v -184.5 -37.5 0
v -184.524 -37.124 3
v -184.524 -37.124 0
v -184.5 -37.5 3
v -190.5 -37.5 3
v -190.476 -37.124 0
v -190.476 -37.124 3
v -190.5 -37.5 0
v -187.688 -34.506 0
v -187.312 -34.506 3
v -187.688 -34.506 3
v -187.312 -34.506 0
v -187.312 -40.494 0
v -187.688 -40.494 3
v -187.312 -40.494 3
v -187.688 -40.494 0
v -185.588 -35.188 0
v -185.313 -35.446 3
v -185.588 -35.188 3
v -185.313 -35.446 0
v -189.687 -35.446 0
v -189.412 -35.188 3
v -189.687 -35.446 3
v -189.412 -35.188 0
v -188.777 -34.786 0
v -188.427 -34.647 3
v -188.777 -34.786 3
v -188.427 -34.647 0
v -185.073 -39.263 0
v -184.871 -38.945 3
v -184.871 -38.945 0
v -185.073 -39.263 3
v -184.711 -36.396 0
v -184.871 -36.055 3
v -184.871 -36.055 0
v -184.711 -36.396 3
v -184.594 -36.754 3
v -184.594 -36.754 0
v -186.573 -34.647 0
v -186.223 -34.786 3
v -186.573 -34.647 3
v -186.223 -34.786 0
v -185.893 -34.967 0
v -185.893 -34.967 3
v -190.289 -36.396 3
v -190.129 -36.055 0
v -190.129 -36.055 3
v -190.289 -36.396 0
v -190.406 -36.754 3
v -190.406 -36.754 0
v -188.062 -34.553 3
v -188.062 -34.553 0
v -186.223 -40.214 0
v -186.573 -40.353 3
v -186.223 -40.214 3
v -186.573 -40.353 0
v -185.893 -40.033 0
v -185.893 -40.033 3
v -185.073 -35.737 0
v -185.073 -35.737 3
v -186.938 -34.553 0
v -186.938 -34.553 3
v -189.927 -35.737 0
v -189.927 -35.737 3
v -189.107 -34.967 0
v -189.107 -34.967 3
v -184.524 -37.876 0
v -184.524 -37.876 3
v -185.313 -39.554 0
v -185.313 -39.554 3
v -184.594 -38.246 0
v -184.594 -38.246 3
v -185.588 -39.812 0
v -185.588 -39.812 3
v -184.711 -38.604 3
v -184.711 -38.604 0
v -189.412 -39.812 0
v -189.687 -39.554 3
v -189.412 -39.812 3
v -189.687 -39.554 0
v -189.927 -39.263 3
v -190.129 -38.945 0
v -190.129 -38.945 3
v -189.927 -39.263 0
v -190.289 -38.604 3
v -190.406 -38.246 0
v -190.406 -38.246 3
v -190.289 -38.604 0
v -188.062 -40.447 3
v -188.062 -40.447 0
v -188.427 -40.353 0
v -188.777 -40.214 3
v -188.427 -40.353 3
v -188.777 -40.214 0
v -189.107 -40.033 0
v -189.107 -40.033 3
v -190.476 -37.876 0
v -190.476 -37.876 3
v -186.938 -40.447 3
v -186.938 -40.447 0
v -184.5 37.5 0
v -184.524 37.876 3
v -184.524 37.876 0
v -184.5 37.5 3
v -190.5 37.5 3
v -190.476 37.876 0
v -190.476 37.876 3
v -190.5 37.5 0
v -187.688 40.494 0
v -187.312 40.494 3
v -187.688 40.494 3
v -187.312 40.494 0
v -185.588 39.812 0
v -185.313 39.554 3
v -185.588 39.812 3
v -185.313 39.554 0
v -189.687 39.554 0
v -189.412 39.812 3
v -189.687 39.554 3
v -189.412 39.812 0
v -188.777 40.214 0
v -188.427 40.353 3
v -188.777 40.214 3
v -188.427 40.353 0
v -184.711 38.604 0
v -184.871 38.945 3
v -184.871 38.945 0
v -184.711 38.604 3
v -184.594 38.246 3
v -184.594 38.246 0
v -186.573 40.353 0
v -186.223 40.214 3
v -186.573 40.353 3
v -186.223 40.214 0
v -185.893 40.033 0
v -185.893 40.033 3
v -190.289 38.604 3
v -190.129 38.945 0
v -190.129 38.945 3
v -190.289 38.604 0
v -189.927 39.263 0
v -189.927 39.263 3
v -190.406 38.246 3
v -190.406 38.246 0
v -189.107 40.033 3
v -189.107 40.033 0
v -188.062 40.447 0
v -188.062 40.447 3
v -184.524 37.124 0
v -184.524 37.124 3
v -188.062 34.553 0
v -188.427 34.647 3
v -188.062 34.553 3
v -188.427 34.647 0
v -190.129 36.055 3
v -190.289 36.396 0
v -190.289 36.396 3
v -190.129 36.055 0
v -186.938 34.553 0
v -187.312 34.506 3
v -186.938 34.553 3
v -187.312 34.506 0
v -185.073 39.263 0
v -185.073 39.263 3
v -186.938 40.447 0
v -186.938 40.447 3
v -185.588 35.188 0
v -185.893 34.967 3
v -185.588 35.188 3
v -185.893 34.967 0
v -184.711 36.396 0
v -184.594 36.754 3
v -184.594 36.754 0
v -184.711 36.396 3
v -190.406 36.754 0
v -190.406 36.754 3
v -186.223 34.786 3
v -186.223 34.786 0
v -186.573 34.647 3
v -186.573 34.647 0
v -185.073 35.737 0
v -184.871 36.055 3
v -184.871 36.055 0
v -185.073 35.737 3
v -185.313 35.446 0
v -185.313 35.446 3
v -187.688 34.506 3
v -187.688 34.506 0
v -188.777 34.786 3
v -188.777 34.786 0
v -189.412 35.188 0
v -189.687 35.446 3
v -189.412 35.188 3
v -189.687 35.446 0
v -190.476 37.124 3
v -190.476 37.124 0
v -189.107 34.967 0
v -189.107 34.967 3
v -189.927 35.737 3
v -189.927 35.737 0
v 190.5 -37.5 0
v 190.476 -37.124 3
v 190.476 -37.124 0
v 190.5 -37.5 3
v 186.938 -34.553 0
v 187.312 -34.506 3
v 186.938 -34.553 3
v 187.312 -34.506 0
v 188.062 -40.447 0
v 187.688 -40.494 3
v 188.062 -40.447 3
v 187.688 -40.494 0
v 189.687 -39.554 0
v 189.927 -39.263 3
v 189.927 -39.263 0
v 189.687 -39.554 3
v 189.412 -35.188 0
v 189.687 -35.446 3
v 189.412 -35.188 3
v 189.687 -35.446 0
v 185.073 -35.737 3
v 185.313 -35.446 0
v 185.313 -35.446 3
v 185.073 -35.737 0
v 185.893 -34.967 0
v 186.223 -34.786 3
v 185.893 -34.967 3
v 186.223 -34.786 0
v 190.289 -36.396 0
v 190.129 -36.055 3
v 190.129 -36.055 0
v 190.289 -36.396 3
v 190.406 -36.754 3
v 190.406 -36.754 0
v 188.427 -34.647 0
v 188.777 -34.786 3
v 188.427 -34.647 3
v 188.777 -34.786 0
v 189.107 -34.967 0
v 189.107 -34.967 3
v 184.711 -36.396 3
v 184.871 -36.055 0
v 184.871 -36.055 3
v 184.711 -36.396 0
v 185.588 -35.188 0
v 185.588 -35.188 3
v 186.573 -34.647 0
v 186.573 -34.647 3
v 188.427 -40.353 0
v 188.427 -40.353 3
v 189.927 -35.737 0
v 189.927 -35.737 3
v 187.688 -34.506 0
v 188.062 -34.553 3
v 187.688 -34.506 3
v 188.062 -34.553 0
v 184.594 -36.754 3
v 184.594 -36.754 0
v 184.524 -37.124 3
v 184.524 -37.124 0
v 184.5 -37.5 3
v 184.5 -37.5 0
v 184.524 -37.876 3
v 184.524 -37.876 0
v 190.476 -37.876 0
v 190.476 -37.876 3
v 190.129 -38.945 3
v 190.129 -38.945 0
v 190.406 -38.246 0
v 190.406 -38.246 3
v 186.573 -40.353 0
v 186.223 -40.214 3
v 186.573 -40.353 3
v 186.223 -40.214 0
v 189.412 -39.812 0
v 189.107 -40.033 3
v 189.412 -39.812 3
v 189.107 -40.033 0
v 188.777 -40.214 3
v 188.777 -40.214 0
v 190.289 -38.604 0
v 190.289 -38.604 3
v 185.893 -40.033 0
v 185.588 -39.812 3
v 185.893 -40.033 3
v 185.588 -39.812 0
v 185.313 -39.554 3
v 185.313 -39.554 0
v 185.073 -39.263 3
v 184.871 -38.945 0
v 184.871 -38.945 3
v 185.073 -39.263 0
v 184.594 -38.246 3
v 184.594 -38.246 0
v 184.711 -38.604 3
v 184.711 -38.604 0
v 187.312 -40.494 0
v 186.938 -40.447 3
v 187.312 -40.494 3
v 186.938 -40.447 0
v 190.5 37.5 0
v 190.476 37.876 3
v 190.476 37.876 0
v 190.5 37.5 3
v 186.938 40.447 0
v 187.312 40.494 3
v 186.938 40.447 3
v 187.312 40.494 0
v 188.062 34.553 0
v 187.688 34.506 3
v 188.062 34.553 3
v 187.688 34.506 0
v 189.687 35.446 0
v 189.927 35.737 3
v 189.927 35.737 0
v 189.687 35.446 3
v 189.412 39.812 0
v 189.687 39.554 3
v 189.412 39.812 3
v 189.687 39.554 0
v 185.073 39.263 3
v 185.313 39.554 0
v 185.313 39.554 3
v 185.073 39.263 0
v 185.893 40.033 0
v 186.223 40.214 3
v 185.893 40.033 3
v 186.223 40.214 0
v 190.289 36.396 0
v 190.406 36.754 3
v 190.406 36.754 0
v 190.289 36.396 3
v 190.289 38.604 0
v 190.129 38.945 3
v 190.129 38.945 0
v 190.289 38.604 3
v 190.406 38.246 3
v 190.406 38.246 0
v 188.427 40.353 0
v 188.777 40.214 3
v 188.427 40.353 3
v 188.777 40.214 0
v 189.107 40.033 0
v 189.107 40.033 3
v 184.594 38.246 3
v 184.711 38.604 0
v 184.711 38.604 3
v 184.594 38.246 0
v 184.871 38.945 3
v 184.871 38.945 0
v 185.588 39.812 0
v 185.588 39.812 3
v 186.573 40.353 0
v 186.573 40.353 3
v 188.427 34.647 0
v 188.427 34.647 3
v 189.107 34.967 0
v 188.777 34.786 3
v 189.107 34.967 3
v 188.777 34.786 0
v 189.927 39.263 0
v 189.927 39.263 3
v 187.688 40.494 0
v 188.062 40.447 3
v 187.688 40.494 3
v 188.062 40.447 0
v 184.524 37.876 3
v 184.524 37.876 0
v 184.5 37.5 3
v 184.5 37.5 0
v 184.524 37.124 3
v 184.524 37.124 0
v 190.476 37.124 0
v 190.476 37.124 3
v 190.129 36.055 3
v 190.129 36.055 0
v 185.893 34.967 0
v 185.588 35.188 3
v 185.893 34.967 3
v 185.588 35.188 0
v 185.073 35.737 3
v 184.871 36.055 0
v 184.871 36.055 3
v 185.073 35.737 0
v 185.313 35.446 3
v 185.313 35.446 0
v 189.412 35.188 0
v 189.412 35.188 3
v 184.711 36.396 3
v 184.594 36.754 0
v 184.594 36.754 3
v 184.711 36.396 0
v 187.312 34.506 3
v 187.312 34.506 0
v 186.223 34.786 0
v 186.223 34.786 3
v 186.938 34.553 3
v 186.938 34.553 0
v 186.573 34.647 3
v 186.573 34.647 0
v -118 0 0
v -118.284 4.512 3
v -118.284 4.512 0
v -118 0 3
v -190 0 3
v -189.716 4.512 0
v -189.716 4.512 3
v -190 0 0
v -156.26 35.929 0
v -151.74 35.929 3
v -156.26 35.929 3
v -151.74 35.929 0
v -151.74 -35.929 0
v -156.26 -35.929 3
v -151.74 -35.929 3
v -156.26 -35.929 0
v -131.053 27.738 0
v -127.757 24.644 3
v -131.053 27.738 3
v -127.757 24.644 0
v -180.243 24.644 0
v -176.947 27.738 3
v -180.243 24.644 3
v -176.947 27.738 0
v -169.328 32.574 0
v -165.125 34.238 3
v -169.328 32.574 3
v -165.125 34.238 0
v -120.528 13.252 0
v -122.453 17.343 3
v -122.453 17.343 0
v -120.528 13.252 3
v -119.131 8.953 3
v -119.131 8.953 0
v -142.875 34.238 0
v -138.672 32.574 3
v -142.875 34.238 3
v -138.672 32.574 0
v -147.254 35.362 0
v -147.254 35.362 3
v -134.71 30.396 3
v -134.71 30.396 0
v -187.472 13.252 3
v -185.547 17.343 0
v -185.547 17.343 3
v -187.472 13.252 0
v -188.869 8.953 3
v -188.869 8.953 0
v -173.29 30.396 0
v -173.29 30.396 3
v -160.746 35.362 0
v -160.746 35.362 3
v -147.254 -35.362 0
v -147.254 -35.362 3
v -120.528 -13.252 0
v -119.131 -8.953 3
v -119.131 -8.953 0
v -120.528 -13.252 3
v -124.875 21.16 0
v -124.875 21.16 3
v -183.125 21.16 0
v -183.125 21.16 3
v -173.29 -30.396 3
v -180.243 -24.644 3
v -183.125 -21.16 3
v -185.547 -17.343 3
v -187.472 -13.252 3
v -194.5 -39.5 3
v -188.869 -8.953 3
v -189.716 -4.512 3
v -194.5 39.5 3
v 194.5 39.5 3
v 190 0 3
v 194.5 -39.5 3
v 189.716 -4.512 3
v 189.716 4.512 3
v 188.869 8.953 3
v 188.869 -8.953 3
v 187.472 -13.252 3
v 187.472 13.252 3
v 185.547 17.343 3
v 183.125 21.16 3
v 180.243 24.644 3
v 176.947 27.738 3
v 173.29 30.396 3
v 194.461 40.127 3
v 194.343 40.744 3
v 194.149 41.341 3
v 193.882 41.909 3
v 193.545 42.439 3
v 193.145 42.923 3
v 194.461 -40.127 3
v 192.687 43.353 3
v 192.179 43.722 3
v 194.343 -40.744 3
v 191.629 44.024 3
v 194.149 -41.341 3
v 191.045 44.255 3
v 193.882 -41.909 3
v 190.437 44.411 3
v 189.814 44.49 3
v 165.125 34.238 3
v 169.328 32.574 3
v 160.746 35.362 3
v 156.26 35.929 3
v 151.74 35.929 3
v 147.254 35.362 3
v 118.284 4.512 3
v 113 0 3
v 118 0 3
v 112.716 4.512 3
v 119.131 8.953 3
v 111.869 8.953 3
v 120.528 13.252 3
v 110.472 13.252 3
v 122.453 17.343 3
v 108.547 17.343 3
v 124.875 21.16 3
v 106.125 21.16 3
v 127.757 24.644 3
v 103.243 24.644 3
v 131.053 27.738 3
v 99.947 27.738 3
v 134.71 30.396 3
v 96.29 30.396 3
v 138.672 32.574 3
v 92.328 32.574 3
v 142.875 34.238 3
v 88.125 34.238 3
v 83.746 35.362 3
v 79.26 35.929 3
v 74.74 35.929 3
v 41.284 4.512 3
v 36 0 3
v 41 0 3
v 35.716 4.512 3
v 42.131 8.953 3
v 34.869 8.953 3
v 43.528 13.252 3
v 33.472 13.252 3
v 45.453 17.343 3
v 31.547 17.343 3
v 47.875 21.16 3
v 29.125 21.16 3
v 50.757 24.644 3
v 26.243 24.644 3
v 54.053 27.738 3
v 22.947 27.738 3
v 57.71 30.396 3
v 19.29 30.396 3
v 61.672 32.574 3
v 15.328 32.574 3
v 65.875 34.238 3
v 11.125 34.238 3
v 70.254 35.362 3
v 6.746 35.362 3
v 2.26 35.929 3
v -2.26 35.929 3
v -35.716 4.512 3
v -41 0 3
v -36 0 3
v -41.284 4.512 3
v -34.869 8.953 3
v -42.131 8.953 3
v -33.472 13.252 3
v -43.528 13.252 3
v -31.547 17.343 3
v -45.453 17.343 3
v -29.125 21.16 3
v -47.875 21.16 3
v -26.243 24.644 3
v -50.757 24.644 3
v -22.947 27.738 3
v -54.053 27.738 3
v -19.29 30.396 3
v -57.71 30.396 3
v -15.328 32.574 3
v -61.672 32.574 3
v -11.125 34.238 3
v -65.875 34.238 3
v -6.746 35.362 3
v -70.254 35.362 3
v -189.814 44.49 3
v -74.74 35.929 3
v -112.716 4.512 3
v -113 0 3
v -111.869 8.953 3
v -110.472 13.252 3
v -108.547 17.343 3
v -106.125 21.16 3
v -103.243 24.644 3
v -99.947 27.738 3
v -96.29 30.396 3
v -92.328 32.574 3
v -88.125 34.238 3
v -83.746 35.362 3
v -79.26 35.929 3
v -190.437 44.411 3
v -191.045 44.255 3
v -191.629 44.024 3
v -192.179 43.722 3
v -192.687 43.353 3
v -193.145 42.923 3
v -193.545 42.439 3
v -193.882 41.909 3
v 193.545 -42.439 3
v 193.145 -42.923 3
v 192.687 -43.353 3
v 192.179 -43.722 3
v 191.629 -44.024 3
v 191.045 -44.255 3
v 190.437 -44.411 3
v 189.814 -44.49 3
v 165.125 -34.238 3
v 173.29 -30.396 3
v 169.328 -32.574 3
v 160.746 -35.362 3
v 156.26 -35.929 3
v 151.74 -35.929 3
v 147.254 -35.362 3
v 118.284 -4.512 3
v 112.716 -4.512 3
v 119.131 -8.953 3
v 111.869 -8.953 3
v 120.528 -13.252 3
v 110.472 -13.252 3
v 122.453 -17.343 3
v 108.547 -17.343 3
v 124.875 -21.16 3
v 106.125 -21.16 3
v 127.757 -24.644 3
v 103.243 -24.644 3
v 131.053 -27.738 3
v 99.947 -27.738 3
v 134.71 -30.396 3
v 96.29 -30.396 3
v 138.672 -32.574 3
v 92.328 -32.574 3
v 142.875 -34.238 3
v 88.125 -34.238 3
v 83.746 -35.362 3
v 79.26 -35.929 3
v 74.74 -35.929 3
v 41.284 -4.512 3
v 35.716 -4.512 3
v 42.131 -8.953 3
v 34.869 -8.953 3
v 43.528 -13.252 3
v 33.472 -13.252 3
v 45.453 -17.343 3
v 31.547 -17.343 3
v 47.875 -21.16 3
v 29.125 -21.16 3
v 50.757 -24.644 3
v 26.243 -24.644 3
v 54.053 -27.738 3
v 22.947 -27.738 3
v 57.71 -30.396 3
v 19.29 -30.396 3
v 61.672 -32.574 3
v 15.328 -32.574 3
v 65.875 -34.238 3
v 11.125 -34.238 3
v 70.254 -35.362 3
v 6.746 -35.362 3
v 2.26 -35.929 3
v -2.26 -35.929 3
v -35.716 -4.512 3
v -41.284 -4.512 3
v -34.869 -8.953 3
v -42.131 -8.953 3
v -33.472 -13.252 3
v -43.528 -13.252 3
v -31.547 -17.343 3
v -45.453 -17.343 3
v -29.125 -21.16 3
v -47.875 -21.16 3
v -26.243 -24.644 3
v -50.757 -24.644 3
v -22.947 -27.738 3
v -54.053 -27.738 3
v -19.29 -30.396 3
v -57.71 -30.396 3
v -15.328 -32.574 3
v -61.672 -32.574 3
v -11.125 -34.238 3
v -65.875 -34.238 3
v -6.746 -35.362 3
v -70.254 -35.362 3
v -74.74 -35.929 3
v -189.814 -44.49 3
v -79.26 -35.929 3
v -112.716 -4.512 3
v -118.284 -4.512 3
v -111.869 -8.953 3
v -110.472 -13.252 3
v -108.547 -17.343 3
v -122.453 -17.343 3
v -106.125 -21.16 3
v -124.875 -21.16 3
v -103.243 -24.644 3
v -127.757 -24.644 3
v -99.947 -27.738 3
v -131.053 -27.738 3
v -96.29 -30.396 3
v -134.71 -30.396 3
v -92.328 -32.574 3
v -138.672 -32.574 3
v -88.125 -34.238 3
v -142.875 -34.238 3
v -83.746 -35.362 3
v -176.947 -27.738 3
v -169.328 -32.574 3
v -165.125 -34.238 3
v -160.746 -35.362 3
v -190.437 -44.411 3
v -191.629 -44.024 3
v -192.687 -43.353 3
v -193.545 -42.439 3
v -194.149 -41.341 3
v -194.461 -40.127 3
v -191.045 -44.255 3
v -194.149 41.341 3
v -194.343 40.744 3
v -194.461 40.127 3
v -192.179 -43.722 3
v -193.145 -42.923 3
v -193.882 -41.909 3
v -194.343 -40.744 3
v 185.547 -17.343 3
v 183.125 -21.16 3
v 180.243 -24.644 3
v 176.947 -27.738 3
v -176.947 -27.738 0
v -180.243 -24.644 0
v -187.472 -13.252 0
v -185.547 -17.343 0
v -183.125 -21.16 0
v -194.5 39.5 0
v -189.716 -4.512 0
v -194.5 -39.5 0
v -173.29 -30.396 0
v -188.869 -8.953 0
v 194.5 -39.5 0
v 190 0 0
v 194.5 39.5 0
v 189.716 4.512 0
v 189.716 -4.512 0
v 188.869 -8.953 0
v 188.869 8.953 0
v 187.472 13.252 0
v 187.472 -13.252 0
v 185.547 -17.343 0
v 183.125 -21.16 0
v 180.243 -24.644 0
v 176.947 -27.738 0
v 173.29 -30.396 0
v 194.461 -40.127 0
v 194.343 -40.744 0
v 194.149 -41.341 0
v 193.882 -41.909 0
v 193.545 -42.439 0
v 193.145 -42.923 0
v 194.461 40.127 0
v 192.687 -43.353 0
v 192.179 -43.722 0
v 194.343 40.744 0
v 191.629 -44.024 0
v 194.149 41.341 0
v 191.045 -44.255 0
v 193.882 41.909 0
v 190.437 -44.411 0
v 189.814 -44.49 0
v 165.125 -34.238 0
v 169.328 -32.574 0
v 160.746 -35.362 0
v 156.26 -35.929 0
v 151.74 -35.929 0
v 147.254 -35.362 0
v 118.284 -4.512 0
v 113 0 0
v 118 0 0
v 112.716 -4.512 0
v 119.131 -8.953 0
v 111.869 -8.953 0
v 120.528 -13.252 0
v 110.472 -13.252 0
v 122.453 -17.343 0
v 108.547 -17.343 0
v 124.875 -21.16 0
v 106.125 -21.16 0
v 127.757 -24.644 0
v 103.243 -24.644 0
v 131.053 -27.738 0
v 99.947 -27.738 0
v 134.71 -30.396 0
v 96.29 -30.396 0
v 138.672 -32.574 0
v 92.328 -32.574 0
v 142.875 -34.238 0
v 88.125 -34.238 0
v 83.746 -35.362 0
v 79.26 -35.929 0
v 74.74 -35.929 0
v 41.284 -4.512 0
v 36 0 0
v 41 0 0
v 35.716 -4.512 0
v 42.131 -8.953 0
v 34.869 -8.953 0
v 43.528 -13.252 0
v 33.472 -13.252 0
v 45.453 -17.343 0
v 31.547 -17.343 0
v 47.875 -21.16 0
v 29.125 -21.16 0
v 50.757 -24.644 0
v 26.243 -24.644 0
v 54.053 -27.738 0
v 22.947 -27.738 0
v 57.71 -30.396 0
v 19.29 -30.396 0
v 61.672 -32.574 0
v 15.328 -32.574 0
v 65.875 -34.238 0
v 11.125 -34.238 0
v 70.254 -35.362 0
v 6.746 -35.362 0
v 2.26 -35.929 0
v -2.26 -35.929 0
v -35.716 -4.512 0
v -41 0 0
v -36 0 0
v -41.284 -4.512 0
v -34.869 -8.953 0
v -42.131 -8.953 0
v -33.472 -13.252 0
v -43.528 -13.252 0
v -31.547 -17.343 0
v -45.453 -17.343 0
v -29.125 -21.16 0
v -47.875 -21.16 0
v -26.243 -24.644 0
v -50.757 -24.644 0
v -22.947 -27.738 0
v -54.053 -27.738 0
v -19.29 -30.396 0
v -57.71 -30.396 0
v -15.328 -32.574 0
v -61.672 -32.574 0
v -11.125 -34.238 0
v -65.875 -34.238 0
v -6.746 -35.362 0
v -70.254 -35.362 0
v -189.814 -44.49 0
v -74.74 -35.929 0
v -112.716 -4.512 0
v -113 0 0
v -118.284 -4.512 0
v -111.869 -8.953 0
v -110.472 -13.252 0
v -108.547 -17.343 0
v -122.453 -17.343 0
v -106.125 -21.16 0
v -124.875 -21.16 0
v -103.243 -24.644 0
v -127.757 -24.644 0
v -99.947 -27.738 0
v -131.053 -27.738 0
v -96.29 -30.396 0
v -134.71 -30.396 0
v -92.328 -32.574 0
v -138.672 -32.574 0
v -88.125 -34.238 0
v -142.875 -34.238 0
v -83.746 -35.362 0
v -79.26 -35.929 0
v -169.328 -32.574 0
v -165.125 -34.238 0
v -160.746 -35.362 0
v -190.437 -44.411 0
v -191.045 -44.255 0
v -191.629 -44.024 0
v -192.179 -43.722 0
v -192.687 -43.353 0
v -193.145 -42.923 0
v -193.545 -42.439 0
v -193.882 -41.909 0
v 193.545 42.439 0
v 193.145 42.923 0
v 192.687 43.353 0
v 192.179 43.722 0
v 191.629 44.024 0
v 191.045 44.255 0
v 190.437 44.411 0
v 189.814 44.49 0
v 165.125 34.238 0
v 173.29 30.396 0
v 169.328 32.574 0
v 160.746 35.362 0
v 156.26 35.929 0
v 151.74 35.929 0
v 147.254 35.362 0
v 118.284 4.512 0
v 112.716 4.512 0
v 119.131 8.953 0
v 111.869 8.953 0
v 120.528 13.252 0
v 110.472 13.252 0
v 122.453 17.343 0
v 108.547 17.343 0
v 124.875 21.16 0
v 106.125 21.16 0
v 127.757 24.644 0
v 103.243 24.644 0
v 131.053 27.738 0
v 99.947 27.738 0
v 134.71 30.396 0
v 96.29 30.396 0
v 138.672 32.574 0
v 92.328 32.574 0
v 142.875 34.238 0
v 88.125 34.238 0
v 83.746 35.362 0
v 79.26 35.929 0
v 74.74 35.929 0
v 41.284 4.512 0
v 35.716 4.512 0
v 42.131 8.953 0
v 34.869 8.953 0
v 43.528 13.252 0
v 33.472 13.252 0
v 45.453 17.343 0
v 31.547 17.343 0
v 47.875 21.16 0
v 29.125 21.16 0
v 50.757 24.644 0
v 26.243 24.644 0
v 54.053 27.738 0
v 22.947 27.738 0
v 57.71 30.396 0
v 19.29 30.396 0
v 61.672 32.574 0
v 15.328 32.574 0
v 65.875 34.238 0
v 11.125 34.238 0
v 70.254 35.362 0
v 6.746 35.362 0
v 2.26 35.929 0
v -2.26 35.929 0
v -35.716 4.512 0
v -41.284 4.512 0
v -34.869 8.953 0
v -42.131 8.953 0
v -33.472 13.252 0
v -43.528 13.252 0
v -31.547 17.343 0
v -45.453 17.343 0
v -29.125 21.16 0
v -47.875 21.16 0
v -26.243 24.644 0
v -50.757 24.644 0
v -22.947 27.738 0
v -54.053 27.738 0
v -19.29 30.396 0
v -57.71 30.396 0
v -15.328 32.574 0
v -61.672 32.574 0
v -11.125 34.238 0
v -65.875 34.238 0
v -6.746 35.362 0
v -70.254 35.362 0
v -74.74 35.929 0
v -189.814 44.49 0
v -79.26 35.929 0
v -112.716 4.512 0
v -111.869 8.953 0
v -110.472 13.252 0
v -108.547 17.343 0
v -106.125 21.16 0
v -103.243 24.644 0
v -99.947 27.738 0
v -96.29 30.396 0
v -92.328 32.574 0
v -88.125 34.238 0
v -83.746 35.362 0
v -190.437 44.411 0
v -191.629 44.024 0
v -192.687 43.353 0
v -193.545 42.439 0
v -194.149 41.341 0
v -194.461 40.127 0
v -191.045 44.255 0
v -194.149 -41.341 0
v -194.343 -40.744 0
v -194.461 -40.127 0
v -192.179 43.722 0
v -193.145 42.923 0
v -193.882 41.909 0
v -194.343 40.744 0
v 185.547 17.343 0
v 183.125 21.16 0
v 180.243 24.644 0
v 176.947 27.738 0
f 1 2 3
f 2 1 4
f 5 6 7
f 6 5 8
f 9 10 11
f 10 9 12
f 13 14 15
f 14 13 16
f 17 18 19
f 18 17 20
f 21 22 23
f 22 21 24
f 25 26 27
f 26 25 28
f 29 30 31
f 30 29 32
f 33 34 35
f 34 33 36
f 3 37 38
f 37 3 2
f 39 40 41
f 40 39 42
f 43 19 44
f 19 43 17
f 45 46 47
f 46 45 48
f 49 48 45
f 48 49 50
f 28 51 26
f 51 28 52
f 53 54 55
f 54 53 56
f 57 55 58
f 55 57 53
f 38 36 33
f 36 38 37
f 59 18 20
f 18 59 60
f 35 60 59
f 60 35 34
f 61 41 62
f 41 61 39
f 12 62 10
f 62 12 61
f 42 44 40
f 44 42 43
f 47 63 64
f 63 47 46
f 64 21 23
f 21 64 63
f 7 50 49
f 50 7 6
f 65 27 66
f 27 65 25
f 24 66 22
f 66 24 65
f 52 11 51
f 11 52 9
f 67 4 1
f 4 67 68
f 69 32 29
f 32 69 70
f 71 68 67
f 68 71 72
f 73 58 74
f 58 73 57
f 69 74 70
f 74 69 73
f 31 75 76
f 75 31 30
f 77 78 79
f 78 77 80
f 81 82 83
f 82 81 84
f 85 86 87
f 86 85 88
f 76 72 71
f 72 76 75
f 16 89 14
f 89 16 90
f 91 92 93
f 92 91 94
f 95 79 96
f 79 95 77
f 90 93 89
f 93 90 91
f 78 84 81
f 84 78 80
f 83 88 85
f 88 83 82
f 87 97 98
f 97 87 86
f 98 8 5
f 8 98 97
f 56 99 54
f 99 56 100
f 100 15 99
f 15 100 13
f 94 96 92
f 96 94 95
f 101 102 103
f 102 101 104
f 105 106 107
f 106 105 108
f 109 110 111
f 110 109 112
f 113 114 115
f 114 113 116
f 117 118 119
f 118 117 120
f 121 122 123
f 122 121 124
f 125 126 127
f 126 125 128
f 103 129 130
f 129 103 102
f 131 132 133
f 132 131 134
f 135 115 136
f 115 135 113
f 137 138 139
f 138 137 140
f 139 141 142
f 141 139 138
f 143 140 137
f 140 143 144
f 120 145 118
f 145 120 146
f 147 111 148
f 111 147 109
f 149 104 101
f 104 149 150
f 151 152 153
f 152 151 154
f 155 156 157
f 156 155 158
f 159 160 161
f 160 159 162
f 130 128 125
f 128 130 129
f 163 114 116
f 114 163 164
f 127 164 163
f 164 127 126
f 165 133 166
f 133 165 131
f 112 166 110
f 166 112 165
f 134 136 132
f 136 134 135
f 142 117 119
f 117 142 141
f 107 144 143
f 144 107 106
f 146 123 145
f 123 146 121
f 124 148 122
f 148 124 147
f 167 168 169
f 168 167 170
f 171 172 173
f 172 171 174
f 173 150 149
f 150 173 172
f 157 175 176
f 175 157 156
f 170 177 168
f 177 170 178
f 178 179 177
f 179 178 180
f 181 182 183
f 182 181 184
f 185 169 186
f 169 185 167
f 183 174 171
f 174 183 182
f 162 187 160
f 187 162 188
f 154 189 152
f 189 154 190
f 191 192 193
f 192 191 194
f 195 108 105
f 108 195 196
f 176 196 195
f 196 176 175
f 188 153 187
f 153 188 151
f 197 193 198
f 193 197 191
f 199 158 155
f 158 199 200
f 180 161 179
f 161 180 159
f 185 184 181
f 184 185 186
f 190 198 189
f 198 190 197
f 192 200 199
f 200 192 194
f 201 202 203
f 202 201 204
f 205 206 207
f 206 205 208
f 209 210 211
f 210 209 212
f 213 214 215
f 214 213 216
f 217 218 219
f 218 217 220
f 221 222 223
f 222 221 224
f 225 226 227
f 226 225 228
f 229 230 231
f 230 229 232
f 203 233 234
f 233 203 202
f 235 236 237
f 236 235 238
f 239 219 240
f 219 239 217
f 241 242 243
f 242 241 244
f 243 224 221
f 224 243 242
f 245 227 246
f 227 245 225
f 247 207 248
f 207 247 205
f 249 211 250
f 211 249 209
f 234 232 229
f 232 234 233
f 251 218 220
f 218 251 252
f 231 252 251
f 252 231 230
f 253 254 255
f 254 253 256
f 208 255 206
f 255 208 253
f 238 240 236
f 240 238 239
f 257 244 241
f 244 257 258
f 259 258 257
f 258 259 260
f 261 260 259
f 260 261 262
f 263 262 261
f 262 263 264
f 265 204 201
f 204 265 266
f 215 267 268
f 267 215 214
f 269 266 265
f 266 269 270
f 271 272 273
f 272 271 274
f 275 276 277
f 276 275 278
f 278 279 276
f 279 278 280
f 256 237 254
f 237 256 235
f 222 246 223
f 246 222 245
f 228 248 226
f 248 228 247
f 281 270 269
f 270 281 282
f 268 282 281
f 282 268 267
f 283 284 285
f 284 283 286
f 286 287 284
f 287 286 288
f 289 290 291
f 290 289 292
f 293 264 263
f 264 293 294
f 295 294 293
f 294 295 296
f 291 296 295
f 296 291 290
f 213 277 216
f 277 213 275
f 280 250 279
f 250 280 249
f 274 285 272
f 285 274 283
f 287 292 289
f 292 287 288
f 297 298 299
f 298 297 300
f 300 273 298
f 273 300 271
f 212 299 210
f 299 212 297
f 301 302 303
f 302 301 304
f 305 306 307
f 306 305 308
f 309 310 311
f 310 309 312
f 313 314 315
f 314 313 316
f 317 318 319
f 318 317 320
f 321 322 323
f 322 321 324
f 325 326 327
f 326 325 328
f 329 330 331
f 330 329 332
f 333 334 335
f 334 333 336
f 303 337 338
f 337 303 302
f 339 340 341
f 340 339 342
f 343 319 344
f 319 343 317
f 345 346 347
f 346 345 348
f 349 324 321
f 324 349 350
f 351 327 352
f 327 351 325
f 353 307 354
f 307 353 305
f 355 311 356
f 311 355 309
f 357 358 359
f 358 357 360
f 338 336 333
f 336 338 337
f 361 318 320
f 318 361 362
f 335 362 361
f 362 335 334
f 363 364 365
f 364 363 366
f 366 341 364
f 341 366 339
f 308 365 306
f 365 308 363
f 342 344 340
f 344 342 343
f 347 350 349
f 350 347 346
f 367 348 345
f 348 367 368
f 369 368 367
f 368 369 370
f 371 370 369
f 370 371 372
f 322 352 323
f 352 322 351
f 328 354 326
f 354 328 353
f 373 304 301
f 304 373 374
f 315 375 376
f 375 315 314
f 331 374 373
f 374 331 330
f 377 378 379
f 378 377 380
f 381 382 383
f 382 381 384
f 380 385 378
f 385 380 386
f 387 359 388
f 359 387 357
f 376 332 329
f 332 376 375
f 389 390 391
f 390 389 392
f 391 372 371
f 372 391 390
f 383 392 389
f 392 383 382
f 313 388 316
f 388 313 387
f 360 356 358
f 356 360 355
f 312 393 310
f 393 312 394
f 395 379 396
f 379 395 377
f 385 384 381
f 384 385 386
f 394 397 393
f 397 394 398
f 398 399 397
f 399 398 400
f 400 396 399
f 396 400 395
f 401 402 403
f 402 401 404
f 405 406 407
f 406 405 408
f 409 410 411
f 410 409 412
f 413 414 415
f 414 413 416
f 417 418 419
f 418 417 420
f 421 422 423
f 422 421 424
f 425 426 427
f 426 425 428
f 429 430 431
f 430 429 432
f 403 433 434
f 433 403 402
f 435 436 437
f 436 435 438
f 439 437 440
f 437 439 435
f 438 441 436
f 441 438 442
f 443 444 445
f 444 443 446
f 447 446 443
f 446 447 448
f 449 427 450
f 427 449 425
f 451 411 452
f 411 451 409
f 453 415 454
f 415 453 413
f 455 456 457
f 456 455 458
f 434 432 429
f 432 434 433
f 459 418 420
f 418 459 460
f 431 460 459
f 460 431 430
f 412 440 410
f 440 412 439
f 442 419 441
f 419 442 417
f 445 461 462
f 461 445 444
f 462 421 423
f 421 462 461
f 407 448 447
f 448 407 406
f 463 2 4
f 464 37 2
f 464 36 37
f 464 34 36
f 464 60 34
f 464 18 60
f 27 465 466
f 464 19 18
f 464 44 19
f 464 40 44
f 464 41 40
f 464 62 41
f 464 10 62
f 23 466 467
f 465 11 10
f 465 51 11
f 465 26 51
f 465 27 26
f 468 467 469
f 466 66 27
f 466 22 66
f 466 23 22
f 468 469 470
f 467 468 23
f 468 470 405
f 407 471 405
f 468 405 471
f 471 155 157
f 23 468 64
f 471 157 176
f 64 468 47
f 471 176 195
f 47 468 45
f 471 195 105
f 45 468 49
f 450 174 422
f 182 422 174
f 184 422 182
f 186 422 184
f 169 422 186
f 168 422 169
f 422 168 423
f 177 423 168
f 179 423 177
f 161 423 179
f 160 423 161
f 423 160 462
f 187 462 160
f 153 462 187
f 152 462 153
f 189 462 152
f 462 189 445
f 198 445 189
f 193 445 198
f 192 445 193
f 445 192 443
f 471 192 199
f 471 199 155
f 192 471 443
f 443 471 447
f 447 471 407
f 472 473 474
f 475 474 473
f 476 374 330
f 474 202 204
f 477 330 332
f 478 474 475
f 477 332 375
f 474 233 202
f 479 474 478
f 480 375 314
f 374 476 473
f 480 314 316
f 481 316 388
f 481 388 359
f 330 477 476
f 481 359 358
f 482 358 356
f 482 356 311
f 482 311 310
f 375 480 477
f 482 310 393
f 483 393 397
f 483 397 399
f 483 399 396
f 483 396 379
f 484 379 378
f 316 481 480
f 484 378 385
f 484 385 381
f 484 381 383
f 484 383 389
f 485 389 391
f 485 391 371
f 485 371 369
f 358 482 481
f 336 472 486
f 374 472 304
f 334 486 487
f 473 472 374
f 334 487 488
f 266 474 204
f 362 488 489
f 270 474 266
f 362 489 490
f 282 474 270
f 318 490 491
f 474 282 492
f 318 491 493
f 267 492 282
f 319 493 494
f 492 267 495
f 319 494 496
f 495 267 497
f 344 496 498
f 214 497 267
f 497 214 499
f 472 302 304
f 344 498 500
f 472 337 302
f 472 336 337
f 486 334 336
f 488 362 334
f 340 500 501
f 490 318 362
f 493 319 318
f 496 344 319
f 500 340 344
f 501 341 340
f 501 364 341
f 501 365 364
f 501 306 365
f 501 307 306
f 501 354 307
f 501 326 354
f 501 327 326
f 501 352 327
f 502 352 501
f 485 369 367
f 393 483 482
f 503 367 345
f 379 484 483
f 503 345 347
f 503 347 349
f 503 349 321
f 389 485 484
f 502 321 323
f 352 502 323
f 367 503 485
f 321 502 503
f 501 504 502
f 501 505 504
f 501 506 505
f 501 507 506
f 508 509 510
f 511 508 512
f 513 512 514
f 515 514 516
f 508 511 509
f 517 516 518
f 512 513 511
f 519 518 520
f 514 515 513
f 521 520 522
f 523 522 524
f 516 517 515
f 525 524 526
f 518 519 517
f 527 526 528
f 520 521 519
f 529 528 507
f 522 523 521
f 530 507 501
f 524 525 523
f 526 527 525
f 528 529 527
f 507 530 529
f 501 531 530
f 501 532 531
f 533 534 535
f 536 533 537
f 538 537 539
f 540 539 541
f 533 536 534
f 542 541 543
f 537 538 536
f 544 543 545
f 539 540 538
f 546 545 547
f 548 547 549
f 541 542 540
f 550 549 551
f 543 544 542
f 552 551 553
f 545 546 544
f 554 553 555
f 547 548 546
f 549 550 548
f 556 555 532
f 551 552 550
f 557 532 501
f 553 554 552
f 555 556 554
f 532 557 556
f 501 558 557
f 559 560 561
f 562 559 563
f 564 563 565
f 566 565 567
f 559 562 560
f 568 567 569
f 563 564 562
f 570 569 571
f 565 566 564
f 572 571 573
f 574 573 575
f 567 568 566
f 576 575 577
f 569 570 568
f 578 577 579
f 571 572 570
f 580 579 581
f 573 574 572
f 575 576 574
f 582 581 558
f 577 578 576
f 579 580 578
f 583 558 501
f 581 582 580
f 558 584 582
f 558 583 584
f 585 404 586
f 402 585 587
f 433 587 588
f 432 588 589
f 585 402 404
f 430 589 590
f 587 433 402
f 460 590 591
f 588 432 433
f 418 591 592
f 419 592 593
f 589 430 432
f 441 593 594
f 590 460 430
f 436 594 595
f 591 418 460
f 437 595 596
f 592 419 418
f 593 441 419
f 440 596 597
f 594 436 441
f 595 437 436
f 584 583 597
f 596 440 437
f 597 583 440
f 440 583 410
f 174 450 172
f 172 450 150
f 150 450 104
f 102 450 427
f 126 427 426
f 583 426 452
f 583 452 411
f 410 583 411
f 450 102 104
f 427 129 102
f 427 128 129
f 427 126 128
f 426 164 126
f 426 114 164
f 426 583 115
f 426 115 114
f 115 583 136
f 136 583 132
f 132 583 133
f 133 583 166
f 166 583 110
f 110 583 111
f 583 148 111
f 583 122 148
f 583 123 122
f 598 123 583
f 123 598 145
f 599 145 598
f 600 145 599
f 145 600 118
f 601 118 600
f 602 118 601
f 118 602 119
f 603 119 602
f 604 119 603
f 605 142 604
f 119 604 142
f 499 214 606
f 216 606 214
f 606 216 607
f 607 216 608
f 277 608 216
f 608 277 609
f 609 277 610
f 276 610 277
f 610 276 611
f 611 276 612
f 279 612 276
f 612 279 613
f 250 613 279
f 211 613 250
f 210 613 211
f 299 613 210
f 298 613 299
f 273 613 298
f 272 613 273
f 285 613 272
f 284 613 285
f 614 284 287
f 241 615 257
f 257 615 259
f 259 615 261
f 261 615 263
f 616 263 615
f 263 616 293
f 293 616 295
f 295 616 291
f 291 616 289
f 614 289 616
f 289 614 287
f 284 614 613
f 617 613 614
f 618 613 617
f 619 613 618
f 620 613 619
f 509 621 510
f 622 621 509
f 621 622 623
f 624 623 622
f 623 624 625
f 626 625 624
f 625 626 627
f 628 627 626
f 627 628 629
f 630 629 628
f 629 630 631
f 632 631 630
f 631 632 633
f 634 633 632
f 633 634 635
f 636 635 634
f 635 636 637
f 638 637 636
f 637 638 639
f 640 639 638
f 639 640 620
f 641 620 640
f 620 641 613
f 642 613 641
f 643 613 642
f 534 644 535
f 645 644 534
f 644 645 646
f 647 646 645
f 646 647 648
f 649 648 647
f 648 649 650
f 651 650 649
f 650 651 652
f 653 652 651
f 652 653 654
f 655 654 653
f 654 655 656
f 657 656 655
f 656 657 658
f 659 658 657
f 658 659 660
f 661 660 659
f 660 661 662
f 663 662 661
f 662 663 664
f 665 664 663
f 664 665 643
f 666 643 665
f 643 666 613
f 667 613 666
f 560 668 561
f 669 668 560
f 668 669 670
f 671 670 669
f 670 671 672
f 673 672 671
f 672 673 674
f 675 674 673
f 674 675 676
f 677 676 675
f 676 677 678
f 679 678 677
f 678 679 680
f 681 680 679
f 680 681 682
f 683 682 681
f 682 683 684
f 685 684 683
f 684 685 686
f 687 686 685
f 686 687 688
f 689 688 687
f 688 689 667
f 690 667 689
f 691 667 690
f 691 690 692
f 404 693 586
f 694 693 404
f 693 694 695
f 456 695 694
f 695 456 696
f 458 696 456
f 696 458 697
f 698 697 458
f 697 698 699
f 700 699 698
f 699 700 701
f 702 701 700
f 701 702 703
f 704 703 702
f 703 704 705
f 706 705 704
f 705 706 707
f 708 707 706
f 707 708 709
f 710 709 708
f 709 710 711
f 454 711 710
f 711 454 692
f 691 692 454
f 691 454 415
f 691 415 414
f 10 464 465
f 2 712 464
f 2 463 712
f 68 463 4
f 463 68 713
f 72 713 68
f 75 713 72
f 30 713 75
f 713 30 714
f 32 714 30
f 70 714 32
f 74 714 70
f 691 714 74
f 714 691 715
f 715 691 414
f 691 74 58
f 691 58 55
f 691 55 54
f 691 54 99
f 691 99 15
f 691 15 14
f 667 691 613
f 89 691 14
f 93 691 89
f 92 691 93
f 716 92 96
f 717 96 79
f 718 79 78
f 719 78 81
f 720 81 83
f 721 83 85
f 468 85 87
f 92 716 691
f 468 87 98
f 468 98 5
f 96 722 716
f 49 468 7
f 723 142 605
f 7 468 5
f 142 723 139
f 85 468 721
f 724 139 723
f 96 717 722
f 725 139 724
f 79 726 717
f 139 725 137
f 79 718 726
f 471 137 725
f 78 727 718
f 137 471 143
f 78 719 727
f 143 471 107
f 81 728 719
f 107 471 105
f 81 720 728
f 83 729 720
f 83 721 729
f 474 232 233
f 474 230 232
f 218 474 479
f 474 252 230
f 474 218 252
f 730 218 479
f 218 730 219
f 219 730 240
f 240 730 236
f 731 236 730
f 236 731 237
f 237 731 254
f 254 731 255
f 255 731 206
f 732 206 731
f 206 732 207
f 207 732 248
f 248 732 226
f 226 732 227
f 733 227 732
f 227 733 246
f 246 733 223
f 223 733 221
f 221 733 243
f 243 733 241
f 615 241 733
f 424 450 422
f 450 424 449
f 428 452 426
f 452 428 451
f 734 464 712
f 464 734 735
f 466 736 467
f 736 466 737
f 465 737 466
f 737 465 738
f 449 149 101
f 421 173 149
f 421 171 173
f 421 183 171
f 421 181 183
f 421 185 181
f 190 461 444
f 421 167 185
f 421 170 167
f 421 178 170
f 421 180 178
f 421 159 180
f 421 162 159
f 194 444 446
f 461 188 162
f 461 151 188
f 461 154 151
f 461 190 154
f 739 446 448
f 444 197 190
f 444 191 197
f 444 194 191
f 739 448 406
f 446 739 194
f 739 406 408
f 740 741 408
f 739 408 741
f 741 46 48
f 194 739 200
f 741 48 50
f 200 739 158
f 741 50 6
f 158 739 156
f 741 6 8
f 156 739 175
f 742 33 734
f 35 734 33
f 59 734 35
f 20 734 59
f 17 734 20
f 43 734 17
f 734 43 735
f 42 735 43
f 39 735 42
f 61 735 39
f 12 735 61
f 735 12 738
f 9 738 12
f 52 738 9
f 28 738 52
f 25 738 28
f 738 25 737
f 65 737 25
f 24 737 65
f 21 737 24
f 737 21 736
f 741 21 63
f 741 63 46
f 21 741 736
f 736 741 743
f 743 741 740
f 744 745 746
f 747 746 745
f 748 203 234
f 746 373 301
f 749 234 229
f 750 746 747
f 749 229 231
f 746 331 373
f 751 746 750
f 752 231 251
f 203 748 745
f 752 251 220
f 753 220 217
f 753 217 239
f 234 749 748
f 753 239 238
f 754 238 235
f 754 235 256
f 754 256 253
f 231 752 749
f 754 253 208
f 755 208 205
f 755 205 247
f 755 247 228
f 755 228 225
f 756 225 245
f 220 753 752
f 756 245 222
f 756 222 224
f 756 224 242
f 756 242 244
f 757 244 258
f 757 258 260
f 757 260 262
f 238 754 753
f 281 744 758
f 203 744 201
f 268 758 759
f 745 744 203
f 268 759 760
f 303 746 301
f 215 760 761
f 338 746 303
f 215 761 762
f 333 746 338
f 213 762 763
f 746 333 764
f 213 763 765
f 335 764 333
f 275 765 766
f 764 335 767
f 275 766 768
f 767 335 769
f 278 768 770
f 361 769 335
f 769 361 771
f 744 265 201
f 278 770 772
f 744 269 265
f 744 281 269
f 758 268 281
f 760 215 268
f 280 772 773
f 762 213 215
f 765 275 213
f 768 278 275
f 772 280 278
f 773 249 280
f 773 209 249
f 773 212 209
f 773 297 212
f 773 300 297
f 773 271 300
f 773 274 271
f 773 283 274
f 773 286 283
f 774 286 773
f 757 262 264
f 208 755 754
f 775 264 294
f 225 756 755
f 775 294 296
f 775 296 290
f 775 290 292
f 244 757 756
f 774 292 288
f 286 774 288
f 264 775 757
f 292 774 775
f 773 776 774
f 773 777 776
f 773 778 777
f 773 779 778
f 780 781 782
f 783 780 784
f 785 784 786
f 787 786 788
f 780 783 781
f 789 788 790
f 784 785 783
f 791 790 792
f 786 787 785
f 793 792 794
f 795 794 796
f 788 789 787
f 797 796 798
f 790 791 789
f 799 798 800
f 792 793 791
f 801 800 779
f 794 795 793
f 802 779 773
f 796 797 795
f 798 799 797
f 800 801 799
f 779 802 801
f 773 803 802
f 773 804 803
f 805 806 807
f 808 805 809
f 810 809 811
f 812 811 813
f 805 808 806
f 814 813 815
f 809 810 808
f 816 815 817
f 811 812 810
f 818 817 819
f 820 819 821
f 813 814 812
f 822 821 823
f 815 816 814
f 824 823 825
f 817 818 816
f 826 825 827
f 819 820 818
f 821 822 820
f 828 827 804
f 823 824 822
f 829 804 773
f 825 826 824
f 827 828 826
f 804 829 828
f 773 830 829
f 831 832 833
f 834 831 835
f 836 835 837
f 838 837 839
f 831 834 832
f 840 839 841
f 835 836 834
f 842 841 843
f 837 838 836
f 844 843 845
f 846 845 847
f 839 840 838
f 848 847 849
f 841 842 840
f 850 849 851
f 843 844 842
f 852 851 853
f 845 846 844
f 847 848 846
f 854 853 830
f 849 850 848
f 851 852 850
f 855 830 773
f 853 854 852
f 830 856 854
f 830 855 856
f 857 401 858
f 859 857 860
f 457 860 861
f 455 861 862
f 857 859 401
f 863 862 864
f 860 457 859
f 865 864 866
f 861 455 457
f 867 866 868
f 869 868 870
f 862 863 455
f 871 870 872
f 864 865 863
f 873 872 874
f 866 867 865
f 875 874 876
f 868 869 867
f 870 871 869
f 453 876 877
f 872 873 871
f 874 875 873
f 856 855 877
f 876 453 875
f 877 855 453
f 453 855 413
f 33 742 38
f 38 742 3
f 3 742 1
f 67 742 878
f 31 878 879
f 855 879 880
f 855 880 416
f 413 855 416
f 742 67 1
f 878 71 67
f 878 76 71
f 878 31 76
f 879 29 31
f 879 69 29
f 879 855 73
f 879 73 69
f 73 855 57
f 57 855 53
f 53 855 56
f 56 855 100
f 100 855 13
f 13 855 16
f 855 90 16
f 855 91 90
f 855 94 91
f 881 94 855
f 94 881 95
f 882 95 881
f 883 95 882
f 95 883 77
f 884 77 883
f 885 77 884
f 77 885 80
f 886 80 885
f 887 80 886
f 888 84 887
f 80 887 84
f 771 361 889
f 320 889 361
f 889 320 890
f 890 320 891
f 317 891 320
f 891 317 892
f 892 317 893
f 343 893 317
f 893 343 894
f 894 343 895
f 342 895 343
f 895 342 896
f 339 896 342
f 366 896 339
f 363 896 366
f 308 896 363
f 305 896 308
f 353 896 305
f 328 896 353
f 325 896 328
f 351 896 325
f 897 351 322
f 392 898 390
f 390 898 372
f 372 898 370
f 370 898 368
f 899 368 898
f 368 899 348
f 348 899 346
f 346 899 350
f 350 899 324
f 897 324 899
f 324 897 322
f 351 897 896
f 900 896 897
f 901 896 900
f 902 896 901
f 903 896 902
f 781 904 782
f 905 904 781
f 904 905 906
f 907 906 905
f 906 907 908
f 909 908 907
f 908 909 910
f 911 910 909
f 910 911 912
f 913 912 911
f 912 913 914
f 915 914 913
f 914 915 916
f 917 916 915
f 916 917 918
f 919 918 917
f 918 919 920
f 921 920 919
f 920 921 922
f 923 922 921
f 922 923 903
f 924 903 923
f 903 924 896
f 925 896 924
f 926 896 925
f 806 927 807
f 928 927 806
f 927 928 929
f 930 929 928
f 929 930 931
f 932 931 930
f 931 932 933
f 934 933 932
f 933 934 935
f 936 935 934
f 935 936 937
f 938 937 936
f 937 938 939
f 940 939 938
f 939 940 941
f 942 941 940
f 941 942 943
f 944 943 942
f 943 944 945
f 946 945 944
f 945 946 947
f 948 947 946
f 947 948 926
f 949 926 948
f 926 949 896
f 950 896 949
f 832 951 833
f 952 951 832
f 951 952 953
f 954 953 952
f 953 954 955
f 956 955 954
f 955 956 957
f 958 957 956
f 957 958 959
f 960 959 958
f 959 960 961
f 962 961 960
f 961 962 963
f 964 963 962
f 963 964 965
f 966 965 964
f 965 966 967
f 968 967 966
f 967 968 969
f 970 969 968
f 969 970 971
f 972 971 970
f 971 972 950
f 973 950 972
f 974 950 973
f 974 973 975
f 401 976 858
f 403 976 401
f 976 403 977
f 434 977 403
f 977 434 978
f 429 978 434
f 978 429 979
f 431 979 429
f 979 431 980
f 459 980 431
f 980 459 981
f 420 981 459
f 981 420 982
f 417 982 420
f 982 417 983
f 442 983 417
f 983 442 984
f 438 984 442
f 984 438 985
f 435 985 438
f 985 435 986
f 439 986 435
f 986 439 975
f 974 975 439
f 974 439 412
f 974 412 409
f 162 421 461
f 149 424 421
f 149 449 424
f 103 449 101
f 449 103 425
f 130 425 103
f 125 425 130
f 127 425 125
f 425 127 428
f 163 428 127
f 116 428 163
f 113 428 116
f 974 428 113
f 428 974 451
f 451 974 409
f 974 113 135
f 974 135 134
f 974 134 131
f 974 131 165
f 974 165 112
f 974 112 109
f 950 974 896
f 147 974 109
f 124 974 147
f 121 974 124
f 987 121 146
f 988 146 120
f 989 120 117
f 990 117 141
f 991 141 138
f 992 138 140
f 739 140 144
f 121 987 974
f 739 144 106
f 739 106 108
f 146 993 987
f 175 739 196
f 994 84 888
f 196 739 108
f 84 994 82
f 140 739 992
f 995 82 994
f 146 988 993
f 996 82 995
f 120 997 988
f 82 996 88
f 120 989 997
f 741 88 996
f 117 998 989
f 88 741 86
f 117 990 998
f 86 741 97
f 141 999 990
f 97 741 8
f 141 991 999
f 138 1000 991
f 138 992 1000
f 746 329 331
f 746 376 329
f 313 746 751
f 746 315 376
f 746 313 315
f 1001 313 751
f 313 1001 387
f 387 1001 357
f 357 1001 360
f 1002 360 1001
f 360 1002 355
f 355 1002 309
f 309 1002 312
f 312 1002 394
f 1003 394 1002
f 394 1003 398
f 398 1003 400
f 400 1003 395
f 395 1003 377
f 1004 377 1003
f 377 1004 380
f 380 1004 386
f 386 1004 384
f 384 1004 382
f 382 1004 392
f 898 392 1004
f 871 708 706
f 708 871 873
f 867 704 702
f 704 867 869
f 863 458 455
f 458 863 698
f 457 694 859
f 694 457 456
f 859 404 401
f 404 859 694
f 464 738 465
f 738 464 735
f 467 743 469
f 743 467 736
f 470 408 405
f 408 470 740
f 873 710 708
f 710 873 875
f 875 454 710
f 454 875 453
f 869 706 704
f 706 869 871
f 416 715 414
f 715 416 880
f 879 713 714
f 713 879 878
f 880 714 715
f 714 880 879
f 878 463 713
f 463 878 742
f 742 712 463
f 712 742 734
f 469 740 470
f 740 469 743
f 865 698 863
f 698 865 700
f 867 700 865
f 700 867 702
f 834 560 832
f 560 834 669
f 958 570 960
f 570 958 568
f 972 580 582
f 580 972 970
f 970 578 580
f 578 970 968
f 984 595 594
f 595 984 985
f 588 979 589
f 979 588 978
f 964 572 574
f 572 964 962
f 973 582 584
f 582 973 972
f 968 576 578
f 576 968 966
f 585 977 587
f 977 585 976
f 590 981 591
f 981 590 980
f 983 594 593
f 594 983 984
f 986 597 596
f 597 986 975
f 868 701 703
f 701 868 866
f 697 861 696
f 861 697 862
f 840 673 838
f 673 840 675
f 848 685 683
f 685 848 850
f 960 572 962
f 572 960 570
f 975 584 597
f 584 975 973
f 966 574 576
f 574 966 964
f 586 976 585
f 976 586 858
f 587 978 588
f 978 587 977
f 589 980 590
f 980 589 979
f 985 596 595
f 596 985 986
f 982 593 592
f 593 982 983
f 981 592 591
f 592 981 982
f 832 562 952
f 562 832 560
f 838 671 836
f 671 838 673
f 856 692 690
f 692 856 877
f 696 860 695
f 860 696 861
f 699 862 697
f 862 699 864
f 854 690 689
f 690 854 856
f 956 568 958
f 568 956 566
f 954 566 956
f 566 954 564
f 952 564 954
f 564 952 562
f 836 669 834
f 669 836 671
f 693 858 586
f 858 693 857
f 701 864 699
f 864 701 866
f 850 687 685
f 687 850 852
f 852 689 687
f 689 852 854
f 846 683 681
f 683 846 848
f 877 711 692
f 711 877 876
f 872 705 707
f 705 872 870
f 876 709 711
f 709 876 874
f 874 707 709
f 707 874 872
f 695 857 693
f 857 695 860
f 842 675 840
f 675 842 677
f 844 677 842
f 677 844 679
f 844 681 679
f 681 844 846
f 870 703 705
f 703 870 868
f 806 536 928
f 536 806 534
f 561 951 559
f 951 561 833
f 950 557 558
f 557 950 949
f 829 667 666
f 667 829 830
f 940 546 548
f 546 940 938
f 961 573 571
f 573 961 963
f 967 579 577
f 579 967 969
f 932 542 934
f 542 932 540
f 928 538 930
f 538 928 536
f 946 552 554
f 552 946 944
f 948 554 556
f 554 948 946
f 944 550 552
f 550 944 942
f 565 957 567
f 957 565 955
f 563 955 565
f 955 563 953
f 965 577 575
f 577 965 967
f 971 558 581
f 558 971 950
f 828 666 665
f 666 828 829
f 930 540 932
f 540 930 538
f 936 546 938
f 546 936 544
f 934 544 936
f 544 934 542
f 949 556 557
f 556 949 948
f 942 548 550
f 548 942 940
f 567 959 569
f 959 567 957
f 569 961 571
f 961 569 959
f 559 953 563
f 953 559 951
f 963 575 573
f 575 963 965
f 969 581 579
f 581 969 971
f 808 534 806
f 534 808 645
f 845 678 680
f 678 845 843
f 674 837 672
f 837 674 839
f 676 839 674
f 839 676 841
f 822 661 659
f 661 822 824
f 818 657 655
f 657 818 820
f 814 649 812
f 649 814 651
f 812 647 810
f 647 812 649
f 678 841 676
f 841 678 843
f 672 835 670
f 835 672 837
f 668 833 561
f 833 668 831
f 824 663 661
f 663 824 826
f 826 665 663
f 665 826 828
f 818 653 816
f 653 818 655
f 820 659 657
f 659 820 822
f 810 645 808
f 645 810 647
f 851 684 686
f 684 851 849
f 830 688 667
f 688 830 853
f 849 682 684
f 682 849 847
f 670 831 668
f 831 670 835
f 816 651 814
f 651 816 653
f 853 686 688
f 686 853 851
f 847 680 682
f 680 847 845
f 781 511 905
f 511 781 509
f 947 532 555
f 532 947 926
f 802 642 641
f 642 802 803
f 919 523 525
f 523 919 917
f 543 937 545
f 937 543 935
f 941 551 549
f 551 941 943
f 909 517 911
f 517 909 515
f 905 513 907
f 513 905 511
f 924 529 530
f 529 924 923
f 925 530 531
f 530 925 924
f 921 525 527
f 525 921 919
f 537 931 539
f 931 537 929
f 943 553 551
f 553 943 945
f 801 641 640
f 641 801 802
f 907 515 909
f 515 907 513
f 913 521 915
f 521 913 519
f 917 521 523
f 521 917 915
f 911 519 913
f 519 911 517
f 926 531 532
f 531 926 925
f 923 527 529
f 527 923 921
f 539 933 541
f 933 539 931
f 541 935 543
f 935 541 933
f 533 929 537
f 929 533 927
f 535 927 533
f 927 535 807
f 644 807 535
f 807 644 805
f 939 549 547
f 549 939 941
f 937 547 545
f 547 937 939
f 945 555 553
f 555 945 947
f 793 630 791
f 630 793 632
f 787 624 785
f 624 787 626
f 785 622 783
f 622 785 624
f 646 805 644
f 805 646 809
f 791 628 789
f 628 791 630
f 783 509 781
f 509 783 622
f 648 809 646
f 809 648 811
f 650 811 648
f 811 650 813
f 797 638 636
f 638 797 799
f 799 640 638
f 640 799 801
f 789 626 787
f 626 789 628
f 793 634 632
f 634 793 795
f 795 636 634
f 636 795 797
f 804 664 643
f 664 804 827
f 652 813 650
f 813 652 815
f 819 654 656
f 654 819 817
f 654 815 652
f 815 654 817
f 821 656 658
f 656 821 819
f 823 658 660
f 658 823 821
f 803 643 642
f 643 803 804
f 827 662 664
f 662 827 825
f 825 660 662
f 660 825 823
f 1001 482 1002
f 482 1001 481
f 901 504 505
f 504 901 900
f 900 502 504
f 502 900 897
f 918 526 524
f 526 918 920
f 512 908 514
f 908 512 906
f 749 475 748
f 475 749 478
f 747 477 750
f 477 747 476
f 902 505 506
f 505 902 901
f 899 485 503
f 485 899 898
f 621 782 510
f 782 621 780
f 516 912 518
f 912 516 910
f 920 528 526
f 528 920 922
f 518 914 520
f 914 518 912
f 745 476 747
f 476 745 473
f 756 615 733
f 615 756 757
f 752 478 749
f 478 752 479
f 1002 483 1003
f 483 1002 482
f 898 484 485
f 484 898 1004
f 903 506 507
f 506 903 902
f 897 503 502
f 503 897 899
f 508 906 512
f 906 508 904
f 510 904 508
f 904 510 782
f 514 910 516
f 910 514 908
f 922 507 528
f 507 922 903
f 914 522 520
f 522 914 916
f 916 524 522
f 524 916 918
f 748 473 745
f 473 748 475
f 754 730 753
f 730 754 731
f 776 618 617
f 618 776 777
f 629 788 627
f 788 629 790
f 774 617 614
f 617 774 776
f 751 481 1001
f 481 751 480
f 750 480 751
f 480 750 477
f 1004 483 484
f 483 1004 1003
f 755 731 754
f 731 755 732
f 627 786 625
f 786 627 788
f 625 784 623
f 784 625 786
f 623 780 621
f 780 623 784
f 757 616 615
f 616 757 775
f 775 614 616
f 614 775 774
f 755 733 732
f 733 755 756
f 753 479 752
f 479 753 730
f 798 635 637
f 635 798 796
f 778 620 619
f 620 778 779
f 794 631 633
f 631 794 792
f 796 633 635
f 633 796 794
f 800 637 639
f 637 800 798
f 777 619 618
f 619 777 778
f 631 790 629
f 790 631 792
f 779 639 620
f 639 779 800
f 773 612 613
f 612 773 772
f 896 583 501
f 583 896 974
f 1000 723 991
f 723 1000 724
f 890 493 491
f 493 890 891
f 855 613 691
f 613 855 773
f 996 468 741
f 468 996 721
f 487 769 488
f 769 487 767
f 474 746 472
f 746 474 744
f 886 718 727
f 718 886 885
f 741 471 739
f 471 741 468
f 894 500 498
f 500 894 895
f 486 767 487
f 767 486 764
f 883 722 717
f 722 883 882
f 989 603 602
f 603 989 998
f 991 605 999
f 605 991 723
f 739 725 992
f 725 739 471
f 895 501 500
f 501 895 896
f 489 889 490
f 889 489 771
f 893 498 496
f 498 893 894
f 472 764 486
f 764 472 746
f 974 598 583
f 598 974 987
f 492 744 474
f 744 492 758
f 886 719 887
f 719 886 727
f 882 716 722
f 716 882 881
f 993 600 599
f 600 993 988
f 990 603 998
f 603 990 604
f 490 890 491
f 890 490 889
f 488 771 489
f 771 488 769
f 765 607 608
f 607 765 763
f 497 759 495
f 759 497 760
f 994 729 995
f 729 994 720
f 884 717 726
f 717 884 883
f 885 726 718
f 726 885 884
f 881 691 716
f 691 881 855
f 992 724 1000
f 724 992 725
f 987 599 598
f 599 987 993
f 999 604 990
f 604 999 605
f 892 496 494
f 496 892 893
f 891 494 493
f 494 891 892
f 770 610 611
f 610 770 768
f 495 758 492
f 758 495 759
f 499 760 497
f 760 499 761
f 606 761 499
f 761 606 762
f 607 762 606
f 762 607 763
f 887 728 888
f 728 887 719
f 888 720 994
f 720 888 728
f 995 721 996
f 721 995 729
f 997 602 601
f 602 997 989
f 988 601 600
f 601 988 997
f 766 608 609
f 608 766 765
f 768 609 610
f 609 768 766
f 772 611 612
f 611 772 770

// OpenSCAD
$fn = 50;


difference() {
	union() {
		hull() {
			translate(v = [-189.5000000000, 39.5000000000, 0]) {
				cylinder(h = 3, r = 5);
			}
			translate(v = [189.5000000000, 39.5000000000, 0]) {
				cylinder(h = 3, r = 5);
			}
			translate(v = [-189.5000000000, -39.5000000000, 0]) {
				cylinder(h = 3, r = 5);
			}
			translate(v = [189.5000000000, -39.5000000000, 0]) {
				cylinder(h = 3, r = 5);
			}
		}
	}
	union() {
		#translate(v = [-187.5000000000, -37.5000000000, -100.0000000000]) {
			cylinder(h = 200, r = 3.0000000000);
		}
		#translate(v = [-187.5000000000, 37.5000000000, -100.0000000000]) {
			cylinder(h = 200, r = 3.0000000000);
		}
		#translate(v = [187.5000000000, -37.5000000000, -100.0000000000]) {
			cylinder(h = 200, r = 3.0000000000);
		}
		#translate(v = [187.5000000000, 37.5000000000, -100.0000000000]) {
			cylinder(h = 200, r = 3.0000000000);
		}
		#translate(v = [-154.0000000000, 0, 0]) {
			cylinder(h = 3, r = 36.0000000000);
		}
		#translate(v = [-77.0000000000, 0, 0]) {
			cylinder(h = 3, r = 36.0000000000);
		}
		#cylinder(h = 3, r = 36.0000000000);
		#translate(v = [77.0000000000, 0, 0]) {
			cylinder(h = 3, r = 36.0000000000);
		}
		#translate(v = [154.0000000000, 0, 0]) {
			cylinder(h = 3, r = 36.0000000000);
		}
	}
}
